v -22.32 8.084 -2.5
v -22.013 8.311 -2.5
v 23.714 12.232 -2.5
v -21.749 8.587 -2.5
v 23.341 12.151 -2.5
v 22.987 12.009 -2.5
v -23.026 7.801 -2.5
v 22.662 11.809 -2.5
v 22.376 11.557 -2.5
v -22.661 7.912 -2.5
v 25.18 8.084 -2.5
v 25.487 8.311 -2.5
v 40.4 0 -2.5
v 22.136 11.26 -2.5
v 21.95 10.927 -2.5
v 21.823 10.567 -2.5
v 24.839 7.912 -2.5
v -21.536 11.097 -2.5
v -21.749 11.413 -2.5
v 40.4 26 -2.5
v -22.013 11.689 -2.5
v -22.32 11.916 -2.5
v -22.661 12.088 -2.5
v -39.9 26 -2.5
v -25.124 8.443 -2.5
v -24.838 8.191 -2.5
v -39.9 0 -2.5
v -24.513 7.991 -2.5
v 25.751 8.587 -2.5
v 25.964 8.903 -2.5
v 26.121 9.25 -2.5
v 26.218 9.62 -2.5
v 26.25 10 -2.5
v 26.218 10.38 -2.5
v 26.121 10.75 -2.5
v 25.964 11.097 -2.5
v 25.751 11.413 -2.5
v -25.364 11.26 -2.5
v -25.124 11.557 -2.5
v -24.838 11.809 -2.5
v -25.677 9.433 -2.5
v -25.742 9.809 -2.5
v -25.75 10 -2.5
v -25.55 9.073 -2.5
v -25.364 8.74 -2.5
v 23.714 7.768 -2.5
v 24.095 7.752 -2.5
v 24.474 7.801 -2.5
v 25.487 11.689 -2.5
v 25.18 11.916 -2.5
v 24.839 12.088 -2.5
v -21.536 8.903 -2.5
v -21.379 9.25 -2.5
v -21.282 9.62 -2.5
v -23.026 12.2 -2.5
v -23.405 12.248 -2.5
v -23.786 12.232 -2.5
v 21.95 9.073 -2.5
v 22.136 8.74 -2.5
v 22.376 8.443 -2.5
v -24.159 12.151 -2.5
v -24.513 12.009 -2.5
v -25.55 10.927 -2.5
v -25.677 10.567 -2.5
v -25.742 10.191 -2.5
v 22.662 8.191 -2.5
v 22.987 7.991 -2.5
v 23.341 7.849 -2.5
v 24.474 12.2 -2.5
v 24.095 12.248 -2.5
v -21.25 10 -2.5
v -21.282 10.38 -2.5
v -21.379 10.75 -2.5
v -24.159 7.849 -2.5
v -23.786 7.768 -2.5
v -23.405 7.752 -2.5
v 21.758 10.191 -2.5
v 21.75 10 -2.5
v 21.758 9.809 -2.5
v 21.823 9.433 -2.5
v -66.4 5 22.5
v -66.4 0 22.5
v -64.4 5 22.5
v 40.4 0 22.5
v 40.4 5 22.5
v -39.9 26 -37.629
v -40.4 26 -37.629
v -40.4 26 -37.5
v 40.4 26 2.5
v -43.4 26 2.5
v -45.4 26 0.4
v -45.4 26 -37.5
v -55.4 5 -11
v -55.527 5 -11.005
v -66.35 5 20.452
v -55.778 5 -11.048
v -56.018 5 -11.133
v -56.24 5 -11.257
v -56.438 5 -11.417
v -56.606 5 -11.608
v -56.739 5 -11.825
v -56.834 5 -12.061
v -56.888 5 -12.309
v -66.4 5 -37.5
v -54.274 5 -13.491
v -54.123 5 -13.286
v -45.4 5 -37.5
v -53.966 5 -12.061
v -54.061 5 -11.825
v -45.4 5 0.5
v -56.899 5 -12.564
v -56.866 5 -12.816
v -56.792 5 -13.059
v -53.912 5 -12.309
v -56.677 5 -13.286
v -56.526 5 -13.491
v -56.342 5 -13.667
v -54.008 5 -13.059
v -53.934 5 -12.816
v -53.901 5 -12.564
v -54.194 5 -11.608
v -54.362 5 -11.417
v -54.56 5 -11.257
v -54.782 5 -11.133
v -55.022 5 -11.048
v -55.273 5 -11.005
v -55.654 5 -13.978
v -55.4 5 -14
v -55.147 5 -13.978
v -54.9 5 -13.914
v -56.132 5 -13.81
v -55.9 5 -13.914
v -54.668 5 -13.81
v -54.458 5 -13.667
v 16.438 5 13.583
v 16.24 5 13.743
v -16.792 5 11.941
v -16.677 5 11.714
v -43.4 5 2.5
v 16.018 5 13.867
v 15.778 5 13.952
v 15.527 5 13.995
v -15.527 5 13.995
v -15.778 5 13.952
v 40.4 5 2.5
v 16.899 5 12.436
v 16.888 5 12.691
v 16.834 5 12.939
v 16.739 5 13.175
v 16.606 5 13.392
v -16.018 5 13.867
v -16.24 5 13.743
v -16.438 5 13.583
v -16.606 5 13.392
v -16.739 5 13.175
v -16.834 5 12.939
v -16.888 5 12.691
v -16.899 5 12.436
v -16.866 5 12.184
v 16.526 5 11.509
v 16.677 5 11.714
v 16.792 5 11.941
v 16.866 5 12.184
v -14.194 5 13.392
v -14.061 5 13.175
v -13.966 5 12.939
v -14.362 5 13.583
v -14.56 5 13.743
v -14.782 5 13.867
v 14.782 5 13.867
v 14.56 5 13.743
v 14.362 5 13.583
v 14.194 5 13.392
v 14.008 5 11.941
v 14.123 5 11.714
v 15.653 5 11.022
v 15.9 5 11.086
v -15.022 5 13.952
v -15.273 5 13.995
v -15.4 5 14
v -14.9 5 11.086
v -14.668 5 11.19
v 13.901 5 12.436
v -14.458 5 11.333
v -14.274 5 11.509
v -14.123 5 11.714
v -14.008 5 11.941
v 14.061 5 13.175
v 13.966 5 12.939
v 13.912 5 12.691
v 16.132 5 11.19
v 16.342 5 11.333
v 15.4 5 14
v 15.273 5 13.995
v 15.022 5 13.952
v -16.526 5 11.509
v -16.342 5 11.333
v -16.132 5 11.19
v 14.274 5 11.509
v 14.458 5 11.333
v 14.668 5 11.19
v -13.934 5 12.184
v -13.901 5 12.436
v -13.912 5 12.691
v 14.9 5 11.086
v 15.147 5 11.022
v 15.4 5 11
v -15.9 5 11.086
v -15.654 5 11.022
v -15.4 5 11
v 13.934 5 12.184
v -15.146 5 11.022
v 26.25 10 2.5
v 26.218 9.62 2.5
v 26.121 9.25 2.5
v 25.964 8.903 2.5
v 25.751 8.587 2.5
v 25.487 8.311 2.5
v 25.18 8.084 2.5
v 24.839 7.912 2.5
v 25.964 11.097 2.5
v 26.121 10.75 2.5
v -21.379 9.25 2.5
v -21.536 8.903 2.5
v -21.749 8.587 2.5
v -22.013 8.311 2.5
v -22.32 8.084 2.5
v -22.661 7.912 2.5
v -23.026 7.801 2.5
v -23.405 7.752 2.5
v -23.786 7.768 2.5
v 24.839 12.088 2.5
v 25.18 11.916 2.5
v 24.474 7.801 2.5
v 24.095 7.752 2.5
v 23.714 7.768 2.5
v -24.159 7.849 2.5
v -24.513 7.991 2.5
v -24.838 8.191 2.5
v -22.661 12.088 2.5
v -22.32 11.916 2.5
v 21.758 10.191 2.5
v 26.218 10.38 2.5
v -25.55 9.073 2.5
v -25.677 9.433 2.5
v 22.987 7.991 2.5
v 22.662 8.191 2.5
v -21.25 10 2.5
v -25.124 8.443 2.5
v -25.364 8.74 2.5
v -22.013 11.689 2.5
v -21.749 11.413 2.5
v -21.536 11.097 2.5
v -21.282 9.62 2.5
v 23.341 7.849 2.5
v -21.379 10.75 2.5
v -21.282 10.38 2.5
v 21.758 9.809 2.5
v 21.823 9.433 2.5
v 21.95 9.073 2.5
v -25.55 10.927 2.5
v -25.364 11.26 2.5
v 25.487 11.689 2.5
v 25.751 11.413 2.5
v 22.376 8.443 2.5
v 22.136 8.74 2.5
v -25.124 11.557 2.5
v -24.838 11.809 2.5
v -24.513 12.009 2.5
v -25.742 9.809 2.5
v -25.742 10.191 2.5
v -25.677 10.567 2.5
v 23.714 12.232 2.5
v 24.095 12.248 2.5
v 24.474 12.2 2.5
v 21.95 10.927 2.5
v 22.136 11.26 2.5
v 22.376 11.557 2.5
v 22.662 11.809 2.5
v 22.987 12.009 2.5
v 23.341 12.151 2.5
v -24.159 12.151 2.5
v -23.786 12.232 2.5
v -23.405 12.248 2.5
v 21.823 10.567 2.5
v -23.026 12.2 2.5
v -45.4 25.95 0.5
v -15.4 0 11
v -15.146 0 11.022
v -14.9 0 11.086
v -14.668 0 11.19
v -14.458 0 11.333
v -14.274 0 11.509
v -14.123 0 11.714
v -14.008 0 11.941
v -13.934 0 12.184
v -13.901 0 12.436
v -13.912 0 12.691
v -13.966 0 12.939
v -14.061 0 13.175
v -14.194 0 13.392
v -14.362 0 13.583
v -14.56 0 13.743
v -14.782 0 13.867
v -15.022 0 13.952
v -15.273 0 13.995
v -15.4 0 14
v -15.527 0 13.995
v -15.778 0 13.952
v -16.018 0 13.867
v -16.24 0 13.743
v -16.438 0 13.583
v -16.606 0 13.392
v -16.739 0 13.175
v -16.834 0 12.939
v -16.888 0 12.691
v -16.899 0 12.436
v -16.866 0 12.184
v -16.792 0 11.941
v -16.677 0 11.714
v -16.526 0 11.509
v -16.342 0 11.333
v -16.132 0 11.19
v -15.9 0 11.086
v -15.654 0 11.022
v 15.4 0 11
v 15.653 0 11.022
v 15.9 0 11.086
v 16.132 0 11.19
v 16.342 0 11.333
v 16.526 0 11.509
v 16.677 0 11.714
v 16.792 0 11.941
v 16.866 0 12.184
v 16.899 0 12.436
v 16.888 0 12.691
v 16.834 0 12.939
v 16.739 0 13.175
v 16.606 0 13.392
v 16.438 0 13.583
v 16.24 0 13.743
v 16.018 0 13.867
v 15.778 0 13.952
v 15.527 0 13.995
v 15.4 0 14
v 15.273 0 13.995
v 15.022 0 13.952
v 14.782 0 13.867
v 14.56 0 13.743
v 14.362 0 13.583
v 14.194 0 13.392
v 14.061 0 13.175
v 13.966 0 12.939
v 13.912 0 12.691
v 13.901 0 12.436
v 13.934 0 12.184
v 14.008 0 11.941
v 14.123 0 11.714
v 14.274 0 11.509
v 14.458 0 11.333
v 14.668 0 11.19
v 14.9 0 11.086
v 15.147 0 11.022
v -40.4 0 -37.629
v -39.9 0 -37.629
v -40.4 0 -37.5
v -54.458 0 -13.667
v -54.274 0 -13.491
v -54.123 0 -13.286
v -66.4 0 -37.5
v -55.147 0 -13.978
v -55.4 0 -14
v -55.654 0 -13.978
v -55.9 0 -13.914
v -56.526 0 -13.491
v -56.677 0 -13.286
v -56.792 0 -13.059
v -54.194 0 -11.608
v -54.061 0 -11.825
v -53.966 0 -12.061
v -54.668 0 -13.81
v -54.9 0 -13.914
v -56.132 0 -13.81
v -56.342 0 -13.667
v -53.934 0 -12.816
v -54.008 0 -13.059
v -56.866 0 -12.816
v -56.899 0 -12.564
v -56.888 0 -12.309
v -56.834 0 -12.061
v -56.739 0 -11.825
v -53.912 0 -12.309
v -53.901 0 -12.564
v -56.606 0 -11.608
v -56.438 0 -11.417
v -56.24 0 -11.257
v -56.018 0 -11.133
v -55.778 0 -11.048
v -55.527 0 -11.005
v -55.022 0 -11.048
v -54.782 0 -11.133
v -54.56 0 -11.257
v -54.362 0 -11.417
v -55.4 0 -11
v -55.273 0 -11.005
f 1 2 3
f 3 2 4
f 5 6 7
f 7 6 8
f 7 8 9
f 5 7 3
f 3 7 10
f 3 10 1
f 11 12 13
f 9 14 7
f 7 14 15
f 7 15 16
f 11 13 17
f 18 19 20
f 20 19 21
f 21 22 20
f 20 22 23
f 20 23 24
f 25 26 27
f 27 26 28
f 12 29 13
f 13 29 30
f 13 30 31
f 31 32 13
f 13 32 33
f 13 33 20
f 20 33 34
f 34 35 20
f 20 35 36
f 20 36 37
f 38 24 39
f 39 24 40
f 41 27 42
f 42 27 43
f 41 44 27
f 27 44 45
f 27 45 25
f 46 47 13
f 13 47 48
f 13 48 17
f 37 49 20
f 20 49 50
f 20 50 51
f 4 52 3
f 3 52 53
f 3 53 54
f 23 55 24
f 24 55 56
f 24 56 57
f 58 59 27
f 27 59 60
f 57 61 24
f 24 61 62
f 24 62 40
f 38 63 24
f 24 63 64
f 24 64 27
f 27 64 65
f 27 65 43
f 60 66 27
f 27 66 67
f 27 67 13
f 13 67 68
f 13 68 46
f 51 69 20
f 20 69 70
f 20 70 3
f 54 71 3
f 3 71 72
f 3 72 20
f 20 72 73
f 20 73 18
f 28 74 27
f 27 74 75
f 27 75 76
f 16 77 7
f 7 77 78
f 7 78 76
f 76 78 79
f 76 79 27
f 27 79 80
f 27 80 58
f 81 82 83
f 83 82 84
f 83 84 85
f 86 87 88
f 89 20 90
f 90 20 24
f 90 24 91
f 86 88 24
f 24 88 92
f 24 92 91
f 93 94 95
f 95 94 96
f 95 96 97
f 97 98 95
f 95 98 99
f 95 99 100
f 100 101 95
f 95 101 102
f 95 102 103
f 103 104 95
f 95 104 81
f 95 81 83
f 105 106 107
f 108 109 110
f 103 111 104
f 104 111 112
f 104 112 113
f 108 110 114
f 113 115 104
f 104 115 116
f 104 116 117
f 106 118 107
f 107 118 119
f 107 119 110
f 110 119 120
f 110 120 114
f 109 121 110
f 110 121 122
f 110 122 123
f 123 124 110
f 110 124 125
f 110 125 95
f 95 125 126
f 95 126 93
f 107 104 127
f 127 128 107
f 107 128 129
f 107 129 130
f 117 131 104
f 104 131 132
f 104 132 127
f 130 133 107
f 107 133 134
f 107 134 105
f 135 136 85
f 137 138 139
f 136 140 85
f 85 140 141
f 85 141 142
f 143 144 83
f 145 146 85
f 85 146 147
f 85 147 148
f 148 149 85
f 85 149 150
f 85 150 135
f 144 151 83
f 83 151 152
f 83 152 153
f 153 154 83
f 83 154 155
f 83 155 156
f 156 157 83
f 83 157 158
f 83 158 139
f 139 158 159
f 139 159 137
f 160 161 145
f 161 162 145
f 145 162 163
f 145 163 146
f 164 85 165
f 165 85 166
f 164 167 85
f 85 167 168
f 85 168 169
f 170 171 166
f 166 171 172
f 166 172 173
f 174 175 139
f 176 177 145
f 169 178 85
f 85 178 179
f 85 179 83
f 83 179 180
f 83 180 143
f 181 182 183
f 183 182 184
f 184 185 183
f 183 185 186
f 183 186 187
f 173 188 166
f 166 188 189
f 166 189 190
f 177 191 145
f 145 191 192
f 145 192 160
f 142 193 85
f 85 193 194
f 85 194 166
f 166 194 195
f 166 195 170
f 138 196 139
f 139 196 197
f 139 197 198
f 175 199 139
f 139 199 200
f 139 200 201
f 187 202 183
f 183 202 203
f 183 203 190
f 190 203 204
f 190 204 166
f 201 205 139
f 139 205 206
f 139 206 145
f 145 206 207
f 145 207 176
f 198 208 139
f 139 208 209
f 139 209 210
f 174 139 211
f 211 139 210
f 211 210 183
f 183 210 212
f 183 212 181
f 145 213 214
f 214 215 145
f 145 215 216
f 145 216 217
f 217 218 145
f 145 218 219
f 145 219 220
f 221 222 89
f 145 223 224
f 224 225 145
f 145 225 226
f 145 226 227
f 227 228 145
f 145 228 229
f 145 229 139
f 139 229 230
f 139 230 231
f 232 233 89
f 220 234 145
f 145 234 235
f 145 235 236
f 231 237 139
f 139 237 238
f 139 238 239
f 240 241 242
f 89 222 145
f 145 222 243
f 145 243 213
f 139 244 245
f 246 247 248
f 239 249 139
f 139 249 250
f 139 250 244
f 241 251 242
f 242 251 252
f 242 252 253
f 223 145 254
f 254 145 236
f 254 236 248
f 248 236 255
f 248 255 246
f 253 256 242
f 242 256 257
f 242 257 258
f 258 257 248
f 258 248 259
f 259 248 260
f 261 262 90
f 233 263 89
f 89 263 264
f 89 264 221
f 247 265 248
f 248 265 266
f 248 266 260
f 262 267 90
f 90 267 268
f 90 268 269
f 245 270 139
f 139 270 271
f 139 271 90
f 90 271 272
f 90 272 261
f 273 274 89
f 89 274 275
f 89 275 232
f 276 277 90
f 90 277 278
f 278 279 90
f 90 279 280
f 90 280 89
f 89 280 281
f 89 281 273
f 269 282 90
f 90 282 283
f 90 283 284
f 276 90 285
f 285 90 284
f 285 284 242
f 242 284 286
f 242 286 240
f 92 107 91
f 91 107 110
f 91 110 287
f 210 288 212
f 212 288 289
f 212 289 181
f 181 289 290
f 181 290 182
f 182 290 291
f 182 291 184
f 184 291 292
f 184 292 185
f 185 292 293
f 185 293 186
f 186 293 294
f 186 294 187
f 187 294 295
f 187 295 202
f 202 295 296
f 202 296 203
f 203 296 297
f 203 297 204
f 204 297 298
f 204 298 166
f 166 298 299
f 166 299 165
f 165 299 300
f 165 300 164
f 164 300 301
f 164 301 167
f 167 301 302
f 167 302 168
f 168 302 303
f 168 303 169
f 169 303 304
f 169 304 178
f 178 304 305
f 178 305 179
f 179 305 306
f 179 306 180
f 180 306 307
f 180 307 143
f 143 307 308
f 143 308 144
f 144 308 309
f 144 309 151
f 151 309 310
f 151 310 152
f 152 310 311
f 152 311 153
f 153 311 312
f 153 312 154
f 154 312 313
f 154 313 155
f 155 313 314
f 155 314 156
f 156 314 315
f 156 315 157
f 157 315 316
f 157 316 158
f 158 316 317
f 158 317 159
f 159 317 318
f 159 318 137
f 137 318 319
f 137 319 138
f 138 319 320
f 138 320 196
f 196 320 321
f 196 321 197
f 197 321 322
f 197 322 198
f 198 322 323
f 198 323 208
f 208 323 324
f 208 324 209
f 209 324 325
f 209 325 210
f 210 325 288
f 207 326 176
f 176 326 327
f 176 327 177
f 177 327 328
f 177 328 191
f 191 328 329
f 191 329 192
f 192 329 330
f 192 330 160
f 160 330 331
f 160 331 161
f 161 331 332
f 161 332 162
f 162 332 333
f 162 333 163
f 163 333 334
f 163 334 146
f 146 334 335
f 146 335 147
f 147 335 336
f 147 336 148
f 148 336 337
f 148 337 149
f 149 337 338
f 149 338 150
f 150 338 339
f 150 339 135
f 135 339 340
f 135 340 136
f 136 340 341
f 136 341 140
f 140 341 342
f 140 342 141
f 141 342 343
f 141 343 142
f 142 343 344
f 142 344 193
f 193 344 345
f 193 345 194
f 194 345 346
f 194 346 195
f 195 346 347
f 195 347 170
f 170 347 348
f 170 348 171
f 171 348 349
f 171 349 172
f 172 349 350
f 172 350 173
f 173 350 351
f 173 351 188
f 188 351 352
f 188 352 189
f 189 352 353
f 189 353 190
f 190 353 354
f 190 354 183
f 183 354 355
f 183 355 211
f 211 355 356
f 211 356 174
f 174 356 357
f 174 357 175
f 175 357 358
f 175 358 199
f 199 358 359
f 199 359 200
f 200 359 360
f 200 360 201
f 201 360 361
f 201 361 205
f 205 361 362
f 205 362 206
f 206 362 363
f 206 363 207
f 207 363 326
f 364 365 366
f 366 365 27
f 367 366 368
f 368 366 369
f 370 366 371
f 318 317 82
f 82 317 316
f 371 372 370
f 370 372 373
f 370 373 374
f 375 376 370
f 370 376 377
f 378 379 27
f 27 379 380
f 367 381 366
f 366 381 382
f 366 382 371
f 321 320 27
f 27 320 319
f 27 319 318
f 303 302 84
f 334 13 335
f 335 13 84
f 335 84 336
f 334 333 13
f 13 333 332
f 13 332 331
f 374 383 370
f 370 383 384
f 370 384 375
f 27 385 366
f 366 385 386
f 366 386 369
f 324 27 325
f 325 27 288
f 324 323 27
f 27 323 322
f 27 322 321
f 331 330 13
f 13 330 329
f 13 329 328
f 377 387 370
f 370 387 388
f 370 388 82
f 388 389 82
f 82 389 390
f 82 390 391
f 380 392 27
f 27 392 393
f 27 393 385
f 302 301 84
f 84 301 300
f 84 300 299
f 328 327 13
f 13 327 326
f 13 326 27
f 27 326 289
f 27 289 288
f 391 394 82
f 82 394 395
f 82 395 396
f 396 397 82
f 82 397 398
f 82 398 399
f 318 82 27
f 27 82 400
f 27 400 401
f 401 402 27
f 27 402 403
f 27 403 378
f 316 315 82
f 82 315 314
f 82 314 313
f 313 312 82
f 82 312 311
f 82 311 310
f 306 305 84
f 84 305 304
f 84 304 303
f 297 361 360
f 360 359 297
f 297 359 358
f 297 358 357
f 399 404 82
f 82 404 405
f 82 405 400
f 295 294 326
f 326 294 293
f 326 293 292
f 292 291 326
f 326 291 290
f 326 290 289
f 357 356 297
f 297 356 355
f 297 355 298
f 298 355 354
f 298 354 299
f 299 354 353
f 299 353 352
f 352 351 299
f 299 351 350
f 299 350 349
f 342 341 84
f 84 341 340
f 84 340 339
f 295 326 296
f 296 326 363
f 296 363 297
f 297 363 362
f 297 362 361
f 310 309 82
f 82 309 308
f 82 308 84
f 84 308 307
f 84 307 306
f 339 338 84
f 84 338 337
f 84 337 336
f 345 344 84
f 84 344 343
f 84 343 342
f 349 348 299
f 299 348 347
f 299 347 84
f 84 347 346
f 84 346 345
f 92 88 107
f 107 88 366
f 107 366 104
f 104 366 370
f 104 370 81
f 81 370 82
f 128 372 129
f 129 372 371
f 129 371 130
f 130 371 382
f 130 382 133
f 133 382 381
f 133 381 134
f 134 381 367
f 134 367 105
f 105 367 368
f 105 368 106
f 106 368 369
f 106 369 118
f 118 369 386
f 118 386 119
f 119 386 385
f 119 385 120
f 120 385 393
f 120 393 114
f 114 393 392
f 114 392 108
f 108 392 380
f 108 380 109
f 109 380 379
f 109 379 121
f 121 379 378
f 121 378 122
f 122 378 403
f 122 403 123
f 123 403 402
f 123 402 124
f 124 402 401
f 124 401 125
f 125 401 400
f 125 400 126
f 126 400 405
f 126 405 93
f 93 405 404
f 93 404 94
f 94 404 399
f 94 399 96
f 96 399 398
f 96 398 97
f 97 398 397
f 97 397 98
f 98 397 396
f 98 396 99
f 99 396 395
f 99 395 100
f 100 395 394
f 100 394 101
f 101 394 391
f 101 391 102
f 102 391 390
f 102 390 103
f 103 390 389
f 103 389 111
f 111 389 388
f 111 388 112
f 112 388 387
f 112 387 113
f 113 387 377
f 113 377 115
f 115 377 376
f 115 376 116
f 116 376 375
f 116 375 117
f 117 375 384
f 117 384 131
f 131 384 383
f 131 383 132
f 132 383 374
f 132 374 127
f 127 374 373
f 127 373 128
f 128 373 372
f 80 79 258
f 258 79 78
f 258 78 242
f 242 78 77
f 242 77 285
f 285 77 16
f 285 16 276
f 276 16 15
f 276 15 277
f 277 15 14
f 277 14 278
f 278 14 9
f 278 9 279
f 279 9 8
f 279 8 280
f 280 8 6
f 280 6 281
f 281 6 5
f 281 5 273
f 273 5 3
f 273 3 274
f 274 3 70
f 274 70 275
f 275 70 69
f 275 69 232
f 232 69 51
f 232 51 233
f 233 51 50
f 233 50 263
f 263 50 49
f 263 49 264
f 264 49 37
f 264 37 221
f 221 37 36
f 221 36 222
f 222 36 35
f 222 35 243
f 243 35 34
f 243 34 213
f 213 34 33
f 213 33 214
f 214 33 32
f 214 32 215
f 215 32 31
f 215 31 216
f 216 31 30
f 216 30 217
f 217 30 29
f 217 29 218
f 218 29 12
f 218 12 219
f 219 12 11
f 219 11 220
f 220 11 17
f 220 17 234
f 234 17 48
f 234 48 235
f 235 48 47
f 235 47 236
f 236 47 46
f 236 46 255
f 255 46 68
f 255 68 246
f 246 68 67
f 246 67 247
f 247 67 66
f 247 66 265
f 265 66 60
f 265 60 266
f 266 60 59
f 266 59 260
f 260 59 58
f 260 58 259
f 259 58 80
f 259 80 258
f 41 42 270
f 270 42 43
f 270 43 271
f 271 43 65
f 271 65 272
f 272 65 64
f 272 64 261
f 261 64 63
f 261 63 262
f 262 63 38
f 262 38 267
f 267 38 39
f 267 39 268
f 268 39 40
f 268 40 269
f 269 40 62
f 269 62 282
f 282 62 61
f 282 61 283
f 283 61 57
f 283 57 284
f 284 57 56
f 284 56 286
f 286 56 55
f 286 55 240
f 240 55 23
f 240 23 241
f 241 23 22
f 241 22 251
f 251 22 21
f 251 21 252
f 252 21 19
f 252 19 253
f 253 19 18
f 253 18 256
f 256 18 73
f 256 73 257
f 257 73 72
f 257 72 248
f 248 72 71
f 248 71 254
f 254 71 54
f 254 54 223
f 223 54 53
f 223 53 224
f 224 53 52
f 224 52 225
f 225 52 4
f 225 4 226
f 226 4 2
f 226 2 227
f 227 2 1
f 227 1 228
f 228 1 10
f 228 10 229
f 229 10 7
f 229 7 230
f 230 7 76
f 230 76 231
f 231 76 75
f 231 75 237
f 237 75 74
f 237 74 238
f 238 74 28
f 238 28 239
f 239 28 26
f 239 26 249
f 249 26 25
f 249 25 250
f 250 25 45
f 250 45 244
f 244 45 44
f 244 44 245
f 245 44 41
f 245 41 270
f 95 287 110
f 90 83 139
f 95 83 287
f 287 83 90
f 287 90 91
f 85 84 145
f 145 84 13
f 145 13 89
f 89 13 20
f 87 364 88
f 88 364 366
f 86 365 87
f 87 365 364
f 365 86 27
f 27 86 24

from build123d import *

# Parameters (mm, degrees)
CROQUIS1_W              = 80.8
CROQUIS1_H              = 25
CROQUIS1_R              = 1.5
SALIENTE_EXTRUIR1_DEPTH = 5
CROQUIS1_3_W            = 80.8
CROQUIS1_3_H            = 5
SALIENTE_EXTRUIR2_DEPTH = 26
CROQUIS1_4_W            = 26
CROQUIS1_4_H            = 60
CROQUIS1_4_R            = 1.5
SALIENTE_EXTRUIR3_DEPTH = 5
CROQUIS1_5_W            = 5
CROQUIS1_5_H            = 40
SALIENTE_EXTRUIR4_DEPTH = 26
CROQUIS3_R              = 2.25
CORTAR_EXTRUIR1_DEPTH   = 26
SALIENTE_EXTRUIR5_DEPTH = 21
CORTAR_EXTRUIR2_DEPTH   = 21
CROQUIS7_W              = 36.882036787
CROQUIS7_H              = 40.226112096
CORTAR_EXTRUIR3_DEPTH   = 90
CROQUIS8_W              = 35.258342774
CROQUIS8_H              = 26
SALIENTE_EXTRUIR6_DEPTH = 0.5


with BuildPart() as part:
    # Croquis1 → Saliente-Extruir1 (new body)
    with BuildSketch(Plane(origin=(0, 0, 0), x_dir=(1, 0, 0), z_dir=(0, 1, 0))):
        with Locations((0, -10)):
            Rectangle(CROQUIS1_W, CROQUIS1_H)
        with Locations((15.4, -12.5)):
            Circle(CROQUIS1_R, mode=Mode.SUBTRACT)
        with Locations((-15.4, -12.5)):
            Circle(CROQUIS1_R, mode=Mode.SUBTRACT)
    extrude(amount=SALIENTE_EXTRUIR1_DEPTH)

    # Croquis1<3> → Saliente-Extruir2 (add)
    with BuildSketch(Plane(origin=(0, 0, 0), x_dir=(1, 0, 0), z_dir=(0, 1, 0))):
        Rectangle(CROQUIS1_3_W, CROQUIS1_3_H)
    extrude(amount=SALIENTE_EXTRUIR2_DEPTH)

    # Croquis1<4> → Saliente-Extruir3 (add)
    # profile 1 of 2: a face of its own
    with BuildSketch(Plane(origin=(0, 0, 0), x_dir=(1, 0, 0), z_dir=(0, 1, 0))):
        with Locations((-53.4, 7.5)):
            Rectangle(CROQUIS1_4_W, CROQUIS1_4_H)
        with Locations((-55.4, 12.5)):
            Circle(CROQUIS1_4_R, mode=Mode.SUBTRACT)
    # profile 2 of 2: a face of its own
    with BuildSketch(Plane(origin=(0, 0, 0), x_dir=(1, 0, 0), z_dir=(0, 1, 0))):
        with Locations((53.4, 7.5)):
            Rectangle(CROQUIS1_4_W, CROQUIS1_4_H)
        with Locations((55.4, 12.5)):
            Circle(CROQUIS1_4_R, mode=Mode.SUBTRACT)
    extrude(amount=SALIENTE_EXTRUIR3_DEPTH)

    # Croquis1<5> → Saliente-Extruir4 (add)
    with BuildSketch(Plane(origin=(0, 0, 0), x_dir=(1, 0, 0), z_dir=(0, 1, 0))):
        with Locations((-42.9, 17.5)):
            Rectangle(CROQUIS1_5_W, CROQUIS1_5_H)
        with Locations((42.9, 17.5)):
            Rectangle(CROQUIS1_5_W, CROQUIS1_5_H)
    extrude(amount=SALIENTE_EXTRUIR4_DEPTH)

    # Croquis3 → Cortar-Extruir1 (cut)
    with BuildSketch(Plane.XY.offset(2.5)):
        with Locations((-23.5, 10)):
            Circle(CROQUIS3_R)
        with Locations((24, 10)):
            Circle(CROQUIS3_R)
    extrude(amount=-CORTAR_EXTRUIR1_DEPTH, mode=Mode.SUBTRACT)

    # Croquis4 → Saliente-Extruir5 (add)
    with BuildSketch(Plane(origin=(0, 5, 0), x_dir=(1, 0, 0), z_dir=(0, 1, 0))):
        Polygon((-45.4, -0.5), (-45.4, -2.5), (-43.4, -2.5), (-64.4, -22.5), (-66.4, -22.5), (-66.4, -20.5), align=None)
    saliente_extruir5 = extrude(amount=SALIENTE_EXTRUIR5_DEPTH)

    # Croquis5 → Cortar-Extruir2 (cut)
    with BuildSketch(Plane(origin=(-19.393579073, 0, -20.363258026), x_dir=(0.7241379310344827, 0, -0.6896551724137933), z_dir=(0.6896551724137933, 0, 0.7241379310344827))):
        Polygon((-62.151724138, 5), (-33.151724138, 26), (-26.486949689, 30.82621598), (-82.759555013, 33.403814281), (-84.060607683, 5), align=None)
    cortar_extruir2 = extrude(amount=-CORTAR_EXTRUIR2_DEPTH, mode=Mode.SUBTRACT)

    # Simetría1: Saliente-Extruir5 across plane
    add(saliente_extruir5.mirror(Plane(origin=(0, 0, 0), x_dir=(0, 0, 1), z_dir=(1, 0, 0))))

    # Simetría2: Cortar-Extruir2 across plane
    add(cortar_extruir2.mirror(Plane(origin=(0, 0, 0), x_dir=(0, 0, 1), z_dir=(1, 0, 0))), mode=Mode.SUBTRACT)

    # Croquis7 → Cortar-Extruir3 (cut)
    with BuildSketch(Plane(origin=(0, 0, -37.5), x_dir=(-1, 0, 0), z_dir=(0, 0, -1))):
        with Locations((-58.841018394, 20.113056048)):
            Rectangle(CROQUIS7_W, CROQUIS7_H)
    extrude(amount=-CORTAR_EXTRUIR3_DEPTH, mode=Mode.SUBTRACT)

    # Croquis8 → Saliente-Extruir6 (add)
    with BuildSketch(Plane(origin=(-40.4, 0, 0), x_dir=(0, 0, -1), z_dir=(1, 0, 0))):
        with Locations((20, 13)):
            Rectangle(CROQUIS8_W, CROQUIS8_H)
    extrude(amount=SALIENTE_EXTRUIR6_DEPTH)


solid = part.part
